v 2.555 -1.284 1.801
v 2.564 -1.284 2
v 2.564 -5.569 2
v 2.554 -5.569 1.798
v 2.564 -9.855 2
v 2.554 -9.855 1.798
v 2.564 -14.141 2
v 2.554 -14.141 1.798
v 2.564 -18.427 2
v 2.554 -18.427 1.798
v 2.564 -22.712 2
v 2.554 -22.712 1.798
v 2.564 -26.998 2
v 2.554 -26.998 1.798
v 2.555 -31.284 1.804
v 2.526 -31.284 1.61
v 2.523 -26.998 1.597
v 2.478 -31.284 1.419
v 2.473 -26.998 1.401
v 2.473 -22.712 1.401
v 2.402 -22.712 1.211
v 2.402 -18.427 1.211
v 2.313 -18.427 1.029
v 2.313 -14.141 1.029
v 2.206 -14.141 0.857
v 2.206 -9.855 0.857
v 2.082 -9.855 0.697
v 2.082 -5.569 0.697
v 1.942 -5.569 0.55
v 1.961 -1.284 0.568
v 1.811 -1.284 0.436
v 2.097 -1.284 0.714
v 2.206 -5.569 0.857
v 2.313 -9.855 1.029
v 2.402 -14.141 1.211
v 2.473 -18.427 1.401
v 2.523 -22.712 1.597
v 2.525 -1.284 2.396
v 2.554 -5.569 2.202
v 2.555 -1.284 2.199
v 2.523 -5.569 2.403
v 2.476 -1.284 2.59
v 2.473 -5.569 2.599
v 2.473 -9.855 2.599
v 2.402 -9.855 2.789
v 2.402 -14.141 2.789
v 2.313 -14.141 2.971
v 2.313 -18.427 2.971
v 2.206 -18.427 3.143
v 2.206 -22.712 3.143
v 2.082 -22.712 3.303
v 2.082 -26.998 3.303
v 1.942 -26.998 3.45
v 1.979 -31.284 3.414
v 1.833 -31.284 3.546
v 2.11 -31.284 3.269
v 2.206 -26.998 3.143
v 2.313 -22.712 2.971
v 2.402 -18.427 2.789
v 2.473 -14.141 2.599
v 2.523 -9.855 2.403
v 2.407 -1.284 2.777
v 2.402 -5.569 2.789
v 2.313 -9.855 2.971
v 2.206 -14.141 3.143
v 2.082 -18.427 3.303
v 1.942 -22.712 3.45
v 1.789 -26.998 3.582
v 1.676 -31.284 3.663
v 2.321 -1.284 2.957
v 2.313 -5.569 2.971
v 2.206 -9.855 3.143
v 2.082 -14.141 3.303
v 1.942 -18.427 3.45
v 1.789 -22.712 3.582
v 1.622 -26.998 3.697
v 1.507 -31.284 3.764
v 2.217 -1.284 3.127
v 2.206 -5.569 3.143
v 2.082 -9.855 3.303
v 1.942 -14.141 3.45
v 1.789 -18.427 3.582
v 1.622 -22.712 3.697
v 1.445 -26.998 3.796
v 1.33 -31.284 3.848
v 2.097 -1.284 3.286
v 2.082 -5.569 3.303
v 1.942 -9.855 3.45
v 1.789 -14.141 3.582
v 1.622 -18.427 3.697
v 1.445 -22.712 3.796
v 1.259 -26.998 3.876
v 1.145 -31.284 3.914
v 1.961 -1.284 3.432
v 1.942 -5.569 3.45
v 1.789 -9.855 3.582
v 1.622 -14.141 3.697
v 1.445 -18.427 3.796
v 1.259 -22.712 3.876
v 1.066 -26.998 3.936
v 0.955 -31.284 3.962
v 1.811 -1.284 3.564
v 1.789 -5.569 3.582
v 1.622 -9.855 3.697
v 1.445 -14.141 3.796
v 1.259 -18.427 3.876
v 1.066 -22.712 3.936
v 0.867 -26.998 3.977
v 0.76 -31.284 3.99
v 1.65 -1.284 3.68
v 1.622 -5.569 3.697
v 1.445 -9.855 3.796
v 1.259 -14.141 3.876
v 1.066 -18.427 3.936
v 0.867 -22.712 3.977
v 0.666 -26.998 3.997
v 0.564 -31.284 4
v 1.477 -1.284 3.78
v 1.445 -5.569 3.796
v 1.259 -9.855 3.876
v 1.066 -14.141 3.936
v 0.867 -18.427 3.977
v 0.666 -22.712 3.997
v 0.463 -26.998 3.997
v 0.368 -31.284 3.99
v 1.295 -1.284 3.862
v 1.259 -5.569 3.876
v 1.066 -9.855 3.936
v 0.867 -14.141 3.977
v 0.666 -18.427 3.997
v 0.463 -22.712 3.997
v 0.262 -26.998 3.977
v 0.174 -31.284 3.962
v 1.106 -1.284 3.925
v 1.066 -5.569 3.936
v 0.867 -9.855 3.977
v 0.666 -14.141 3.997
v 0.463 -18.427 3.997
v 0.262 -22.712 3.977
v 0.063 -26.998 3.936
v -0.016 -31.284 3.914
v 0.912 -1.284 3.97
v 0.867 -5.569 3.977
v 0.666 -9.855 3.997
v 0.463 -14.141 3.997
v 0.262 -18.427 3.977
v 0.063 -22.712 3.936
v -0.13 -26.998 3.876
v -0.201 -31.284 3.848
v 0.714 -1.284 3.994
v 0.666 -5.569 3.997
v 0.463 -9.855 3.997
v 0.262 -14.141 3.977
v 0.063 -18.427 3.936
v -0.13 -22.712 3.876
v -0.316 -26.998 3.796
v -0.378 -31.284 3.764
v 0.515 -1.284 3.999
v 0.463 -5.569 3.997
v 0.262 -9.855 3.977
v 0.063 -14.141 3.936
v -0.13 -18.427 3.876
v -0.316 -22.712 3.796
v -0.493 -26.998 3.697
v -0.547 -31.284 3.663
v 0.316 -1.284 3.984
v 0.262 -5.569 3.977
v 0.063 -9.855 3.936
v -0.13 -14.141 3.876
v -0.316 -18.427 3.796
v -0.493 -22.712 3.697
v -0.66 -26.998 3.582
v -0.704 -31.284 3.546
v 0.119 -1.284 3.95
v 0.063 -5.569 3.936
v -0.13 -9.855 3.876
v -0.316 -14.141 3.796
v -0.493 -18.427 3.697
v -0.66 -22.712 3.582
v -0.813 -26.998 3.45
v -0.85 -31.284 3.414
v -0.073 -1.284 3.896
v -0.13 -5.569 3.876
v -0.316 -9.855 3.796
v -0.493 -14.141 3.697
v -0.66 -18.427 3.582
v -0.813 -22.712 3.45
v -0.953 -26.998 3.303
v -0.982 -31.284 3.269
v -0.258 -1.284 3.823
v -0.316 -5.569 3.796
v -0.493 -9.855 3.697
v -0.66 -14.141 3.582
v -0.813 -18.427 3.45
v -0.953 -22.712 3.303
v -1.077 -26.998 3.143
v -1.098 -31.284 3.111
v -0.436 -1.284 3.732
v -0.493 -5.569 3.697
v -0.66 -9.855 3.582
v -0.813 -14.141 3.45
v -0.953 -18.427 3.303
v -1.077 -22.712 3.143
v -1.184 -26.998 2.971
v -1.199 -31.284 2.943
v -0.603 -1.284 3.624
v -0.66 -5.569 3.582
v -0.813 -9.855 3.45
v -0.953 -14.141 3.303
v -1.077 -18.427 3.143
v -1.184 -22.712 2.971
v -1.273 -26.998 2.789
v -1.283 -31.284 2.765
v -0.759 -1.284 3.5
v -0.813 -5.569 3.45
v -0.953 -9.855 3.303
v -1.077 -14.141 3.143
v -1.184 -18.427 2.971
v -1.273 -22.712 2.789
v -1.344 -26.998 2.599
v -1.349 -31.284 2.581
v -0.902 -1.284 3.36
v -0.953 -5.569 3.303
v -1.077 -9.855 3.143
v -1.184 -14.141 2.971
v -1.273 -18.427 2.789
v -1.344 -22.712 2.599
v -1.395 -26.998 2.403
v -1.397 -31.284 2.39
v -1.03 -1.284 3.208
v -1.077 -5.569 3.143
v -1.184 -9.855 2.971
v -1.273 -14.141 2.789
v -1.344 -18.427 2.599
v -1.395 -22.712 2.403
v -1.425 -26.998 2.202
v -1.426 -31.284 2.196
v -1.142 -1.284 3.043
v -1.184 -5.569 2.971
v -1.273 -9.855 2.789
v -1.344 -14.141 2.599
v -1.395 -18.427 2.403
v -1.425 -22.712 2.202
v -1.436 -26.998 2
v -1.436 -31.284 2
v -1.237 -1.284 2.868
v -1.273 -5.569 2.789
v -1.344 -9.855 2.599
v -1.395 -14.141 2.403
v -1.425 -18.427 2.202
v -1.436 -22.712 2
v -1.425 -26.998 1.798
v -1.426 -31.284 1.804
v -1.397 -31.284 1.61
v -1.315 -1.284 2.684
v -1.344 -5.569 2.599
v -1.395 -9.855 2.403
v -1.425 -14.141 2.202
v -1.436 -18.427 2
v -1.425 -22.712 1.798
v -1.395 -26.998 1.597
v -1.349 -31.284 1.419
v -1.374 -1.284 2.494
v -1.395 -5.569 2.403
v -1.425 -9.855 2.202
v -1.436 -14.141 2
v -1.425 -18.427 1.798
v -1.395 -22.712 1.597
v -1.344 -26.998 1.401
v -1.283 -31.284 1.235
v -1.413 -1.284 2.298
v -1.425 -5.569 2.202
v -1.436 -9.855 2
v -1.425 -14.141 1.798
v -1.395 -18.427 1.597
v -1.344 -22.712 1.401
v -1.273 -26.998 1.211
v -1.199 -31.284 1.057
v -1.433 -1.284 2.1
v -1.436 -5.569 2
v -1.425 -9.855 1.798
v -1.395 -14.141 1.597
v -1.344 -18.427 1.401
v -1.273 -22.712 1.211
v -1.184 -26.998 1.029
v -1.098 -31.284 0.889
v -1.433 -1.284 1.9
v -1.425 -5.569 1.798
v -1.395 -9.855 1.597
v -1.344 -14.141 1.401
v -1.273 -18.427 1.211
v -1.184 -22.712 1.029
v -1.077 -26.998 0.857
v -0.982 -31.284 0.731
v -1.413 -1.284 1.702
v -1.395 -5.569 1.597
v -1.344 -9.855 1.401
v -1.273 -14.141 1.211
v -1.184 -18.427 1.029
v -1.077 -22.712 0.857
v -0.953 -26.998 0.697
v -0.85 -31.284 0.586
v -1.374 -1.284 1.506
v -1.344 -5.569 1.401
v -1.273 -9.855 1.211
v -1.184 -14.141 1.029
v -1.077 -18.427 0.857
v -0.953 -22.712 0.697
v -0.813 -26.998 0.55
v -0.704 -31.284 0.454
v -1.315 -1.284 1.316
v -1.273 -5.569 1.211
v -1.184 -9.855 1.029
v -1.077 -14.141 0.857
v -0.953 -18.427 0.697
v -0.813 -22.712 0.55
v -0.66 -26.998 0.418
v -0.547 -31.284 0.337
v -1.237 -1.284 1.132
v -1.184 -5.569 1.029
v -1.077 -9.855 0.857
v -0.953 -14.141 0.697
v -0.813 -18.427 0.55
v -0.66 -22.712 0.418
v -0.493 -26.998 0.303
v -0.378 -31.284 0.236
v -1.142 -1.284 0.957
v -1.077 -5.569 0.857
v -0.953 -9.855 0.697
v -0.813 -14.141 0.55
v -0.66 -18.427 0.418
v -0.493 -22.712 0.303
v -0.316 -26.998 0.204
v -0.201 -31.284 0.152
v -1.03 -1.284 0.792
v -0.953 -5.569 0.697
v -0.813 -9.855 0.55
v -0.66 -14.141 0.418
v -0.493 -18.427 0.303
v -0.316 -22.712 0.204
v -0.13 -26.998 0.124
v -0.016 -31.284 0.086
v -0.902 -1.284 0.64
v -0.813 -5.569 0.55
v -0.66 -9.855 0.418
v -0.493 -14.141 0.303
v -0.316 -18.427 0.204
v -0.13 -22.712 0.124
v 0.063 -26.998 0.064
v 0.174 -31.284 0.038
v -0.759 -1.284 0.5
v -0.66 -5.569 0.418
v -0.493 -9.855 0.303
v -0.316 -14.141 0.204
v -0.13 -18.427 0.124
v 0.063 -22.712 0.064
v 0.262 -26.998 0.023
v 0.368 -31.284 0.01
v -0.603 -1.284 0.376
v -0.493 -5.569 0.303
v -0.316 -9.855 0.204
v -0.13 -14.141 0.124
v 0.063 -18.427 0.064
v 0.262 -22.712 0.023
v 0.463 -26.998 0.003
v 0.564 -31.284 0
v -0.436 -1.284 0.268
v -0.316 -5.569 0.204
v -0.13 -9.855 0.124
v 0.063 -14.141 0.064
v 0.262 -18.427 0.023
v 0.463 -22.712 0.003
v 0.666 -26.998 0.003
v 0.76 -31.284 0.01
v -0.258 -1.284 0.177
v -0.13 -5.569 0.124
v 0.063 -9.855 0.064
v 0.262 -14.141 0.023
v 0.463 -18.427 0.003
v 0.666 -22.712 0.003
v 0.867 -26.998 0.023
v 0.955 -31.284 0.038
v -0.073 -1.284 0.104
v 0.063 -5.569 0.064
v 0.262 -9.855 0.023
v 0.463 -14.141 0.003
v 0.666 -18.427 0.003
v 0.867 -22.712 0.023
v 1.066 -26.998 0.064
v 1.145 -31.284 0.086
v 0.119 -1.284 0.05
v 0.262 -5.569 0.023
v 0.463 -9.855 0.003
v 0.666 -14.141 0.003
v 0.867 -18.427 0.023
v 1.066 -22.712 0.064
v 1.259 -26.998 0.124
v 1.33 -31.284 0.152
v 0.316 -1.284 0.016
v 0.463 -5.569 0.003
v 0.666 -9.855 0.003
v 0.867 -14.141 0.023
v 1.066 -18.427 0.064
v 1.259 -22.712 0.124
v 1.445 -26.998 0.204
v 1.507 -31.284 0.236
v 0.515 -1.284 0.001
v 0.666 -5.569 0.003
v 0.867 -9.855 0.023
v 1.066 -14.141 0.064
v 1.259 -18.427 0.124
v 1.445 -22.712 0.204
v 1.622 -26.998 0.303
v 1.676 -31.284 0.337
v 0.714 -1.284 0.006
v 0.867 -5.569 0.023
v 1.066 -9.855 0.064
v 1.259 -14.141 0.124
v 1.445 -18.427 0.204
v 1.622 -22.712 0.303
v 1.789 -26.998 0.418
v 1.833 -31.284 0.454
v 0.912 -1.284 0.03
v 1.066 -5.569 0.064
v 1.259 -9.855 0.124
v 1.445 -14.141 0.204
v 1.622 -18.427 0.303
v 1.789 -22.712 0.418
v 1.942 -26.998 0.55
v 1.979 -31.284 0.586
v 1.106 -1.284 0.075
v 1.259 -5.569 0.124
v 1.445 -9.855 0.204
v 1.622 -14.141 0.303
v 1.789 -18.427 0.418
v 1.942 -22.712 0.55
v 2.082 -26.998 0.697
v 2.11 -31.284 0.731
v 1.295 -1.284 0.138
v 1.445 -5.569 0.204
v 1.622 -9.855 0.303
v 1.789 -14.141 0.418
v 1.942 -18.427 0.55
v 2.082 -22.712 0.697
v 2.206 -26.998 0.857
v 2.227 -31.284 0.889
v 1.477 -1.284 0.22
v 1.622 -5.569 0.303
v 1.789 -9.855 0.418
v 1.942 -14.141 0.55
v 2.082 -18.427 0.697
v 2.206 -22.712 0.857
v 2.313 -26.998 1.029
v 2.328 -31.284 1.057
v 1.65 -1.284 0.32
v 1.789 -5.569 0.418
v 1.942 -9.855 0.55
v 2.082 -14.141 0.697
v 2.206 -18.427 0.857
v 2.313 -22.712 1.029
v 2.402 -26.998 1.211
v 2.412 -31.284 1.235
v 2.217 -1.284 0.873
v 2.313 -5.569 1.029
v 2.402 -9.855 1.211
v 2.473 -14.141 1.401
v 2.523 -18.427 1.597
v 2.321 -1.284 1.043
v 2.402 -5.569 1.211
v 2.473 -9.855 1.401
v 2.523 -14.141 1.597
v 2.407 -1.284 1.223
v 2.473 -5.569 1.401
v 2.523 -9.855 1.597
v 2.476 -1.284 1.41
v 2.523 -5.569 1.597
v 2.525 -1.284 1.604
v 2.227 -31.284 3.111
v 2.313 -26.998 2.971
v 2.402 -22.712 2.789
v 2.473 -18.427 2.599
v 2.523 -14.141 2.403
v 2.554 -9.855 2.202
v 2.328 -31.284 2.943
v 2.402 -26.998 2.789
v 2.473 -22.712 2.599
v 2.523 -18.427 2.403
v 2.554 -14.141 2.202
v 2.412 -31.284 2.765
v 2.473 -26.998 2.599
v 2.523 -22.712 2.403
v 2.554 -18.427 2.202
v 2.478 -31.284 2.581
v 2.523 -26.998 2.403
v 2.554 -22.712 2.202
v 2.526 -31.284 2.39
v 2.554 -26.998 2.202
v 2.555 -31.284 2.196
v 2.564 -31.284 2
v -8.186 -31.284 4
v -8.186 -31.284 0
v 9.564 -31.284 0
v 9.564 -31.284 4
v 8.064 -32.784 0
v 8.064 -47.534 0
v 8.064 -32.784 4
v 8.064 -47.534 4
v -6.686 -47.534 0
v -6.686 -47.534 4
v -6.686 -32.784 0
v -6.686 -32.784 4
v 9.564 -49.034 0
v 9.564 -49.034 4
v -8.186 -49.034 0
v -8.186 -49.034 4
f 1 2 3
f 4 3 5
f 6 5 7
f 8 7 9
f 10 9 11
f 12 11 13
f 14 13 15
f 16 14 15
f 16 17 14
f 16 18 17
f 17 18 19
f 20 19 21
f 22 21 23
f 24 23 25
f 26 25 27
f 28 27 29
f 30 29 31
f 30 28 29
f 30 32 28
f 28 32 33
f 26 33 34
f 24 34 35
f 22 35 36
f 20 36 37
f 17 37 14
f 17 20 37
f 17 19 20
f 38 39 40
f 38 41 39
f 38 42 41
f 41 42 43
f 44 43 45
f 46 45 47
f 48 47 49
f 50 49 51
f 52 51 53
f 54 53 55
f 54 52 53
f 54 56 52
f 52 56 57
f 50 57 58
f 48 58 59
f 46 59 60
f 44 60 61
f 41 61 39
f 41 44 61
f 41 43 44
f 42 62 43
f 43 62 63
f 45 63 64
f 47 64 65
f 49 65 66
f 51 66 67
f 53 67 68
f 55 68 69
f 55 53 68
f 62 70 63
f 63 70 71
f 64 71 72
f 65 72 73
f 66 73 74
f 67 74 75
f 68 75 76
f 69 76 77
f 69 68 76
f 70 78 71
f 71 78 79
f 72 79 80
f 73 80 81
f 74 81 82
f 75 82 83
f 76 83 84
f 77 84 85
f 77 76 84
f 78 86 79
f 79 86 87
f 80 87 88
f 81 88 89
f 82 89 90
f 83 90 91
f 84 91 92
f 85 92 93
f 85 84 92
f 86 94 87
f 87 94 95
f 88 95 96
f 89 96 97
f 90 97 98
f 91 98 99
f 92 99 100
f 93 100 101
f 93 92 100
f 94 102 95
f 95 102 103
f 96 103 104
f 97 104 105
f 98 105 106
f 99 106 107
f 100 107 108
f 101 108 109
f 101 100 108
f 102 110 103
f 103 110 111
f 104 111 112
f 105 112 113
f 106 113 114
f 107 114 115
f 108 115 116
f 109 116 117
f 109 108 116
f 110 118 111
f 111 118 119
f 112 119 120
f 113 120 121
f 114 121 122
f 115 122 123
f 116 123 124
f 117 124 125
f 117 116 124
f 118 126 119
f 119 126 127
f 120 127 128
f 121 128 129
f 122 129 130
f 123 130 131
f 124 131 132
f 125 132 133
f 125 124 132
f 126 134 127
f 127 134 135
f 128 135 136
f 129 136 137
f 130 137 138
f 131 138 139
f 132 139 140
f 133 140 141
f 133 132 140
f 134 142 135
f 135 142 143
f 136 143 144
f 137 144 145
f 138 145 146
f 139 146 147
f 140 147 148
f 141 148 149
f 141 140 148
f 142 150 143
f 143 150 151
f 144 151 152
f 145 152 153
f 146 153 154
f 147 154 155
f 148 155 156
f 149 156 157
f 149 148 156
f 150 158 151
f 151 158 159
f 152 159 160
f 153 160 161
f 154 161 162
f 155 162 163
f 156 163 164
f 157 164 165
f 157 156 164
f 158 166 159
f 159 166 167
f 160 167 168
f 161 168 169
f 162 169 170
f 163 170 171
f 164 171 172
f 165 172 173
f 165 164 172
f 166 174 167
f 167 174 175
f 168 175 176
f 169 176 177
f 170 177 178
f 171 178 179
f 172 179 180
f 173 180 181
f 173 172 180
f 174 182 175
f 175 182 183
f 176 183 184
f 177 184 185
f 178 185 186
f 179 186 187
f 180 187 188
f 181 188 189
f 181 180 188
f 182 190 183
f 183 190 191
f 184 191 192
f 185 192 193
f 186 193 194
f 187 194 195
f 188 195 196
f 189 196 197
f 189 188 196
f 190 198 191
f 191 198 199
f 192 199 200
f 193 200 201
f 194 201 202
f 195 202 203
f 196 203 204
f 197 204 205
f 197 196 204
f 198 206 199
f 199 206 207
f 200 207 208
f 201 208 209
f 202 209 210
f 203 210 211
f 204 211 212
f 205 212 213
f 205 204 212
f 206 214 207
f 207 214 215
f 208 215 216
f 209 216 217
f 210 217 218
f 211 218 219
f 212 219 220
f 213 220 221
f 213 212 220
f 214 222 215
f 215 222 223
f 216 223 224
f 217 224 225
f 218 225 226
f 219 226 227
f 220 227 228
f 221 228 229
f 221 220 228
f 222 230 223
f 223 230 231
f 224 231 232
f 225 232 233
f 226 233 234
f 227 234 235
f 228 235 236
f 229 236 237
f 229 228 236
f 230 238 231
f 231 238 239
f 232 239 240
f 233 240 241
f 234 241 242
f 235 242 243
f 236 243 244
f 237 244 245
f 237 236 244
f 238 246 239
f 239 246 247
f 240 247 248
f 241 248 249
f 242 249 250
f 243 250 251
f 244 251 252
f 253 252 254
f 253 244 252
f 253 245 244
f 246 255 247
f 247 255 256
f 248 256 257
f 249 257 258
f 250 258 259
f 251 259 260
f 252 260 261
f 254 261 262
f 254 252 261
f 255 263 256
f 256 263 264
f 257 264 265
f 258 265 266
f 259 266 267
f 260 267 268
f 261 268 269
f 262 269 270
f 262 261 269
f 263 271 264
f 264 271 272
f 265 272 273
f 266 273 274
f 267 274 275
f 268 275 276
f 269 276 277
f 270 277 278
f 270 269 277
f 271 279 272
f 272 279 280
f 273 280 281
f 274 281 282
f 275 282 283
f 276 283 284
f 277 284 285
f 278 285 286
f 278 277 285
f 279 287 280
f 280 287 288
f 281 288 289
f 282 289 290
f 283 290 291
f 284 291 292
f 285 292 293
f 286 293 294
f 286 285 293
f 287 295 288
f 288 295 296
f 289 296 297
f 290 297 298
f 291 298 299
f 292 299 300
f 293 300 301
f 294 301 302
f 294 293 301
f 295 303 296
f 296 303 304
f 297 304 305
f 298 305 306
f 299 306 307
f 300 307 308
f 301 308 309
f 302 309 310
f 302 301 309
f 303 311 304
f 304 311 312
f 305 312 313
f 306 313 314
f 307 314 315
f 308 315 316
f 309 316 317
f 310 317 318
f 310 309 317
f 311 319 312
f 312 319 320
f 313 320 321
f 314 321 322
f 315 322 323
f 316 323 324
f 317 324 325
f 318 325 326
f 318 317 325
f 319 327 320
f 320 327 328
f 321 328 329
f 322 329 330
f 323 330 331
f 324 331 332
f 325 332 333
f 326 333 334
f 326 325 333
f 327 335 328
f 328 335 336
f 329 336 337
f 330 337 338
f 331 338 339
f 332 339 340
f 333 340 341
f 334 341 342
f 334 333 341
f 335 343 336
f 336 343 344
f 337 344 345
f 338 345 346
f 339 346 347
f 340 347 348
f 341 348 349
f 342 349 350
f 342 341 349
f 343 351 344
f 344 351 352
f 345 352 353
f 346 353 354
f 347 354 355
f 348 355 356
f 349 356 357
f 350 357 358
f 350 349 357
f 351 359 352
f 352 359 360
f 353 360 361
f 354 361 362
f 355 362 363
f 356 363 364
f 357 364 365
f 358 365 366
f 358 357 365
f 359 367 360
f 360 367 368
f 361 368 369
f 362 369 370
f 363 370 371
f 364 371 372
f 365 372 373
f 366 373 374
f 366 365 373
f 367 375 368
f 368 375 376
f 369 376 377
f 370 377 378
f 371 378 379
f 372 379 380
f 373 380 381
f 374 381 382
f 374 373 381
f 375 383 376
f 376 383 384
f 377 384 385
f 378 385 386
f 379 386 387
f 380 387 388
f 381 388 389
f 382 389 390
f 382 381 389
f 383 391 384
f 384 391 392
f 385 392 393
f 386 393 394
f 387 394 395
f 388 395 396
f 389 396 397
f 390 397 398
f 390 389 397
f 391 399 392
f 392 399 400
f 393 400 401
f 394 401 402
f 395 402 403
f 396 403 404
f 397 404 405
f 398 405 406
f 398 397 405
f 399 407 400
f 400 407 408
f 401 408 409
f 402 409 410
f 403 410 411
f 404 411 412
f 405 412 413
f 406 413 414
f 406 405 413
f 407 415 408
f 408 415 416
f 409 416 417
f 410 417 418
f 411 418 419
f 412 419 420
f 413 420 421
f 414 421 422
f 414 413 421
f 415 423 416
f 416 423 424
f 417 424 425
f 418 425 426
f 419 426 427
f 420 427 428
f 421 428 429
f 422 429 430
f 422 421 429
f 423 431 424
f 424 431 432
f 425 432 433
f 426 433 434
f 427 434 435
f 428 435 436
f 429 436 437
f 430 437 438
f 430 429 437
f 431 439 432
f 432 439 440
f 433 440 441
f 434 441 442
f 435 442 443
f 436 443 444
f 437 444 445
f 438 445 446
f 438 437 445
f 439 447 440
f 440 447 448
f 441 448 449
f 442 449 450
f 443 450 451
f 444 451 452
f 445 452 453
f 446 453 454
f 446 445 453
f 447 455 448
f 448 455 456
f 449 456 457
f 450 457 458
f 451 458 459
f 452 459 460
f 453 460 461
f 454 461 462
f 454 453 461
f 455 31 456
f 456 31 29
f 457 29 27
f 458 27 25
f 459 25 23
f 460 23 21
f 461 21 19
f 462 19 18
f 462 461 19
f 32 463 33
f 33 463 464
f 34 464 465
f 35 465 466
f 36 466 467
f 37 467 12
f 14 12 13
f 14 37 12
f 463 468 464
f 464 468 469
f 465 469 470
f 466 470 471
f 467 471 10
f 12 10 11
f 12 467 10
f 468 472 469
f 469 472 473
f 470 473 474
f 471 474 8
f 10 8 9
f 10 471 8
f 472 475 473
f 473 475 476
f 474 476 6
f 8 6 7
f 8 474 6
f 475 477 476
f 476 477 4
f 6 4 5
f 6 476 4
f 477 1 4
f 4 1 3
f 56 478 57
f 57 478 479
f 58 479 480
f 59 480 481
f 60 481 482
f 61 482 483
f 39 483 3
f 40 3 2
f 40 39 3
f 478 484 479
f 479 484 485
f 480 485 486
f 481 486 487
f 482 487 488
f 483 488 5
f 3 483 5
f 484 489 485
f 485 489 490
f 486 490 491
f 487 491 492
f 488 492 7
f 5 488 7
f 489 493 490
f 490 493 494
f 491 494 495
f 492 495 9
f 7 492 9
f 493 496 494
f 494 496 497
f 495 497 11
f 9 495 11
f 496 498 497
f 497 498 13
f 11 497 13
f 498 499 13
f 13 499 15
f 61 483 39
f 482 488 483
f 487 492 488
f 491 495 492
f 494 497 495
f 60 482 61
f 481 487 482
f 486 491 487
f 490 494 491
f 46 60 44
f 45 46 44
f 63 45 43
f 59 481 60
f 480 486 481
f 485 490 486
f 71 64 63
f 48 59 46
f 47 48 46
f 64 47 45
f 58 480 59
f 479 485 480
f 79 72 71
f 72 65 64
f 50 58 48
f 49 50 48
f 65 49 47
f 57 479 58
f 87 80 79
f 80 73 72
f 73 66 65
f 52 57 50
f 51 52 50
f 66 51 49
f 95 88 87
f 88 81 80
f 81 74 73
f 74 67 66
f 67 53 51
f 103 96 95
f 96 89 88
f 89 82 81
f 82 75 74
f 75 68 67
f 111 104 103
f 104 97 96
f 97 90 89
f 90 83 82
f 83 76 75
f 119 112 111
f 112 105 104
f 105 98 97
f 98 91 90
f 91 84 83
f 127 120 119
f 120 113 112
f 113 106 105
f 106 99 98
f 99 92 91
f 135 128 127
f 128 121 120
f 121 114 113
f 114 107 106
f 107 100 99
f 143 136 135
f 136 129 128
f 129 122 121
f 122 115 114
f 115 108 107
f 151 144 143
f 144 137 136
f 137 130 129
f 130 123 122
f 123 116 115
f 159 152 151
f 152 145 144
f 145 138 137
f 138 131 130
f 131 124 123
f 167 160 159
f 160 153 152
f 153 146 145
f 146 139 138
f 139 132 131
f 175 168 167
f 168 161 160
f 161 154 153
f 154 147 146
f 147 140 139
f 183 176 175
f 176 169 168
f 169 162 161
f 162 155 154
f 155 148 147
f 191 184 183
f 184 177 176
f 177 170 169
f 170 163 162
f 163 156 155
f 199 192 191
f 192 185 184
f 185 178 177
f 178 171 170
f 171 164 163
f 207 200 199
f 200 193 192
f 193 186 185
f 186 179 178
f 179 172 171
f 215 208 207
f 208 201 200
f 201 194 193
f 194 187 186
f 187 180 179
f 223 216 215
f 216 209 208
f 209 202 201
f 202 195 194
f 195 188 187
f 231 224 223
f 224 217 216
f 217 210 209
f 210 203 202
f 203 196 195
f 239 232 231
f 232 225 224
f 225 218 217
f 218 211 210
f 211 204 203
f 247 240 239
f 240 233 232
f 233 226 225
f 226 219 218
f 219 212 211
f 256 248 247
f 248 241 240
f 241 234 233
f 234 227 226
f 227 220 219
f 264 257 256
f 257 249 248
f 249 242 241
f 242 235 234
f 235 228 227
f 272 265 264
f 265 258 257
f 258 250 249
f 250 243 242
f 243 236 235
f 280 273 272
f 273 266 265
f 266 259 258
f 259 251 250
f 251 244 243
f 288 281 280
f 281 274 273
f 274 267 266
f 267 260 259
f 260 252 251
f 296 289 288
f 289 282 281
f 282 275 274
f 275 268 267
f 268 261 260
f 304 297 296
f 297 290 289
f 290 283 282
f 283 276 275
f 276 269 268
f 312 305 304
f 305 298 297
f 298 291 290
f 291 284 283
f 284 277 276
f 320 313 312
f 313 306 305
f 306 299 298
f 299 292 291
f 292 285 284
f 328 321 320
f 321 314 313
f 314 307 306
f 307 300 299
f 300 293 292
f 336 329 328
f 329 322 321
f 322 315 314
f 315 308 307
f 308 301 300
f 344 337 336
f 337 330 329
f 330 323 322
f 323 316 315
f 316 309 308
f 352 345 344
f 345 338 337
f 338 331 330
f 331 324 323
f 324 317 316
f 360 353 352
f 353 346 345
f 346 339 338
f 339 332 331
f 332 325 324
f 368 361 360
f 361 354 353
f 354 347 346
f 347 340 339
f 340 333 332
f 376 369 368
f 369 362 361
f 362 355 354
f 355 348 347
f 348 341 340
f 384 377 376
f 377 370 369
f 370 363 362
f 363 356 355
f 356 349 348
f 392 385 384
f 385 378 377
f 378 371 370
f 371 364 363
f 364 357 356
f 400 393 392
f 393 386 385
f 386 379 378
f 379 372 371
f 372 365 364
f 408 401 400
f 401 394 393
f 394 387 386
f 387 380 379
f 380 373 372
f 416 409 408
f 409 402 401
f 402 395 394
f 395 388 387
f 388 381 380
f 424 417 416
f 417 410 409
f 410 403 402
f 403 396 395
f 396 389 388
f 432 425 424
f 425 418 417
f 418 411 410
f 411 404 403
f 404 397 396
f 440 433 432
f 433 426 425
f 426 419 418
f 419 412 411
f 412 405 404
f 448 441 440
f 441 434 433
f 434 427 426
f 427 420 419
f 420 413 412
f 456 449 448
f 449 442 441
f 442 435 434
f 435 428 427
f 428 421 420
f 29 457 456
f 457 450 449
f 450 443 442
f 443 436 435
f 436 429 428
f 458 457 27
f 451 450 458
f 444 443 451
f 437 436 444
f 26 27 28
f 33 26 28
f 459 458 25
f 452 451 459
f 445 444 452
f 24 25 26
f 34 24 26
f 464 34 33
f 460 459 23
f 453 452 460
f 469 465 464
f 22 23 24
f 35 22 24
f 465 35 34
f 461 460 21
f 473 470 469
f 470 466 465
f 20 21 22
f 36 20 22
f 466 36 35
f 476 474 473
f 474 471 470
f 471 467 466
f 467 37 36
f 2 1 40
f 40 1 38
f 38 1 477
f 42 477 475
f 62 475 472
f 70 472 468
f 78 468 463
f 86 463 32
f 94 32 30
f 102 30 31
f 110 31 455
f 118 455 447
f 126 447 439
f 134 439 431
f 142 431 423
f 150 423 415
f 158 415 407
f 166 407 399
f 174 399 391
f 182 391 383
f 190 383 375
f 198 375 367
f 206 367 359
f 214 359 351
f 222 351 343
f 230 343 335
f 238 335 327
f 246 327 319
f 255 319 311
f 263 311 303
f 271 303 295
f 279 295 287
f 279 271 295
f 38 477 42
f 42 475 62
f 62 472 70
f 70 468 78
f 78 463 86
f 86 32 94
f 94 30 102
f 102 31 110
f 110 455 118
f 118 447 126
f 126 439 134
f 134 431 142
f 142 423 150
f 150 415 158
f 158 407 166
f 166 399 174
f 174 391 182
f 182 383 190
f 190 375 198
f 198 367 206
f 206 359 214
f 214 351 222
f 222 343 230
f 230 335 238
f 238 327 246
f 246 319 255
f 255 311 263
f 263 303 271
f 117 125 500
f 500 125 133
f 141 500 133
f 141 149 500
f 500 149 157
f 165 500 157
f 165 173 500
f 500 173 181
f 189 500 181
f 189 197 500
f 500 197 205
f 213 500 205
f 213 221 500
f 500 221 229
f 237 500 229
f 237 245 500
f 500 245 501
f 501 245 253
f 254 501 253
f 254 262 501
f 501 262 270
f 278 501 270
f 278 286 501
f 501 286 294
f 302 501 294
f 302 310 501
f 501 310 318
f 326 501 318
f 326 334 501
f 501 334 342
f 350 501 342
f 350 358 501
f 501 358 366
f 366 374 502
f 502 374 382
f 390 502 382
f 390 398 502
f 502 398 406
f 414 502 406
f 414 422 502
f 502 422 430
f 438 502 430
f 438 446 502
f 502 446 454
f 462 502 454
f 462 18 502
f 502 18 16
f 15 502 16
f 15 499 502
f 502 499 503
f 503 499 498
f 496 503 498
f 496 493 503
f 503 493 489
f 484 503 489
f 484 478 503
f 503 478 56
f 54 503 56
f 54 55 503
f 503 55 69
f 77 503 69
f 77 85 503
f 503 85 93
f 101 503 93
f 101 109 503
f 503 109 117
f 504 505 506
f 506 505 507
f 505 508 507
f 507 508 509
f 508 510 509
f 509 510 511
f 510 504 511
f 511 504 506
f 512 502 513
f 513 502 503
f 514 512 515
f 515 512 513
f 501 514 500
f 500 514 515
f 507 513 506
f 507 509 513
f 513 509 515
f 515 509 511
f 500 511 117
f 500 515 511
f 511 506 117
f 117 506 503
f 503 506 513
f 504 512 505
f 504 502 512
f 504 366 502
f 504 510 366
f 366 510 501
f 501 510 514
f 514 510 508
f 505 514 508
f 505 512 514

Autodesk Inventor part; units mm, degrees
ref_plane "YZ Plane" through (0, 0, 0) normal (1, 0, 0) x (0, 1, 0)
ref_plane "XZ Plane" through (0, 0, 0) normal (0, 1, 0) x (-1, 0, 0)
ref_plane "XY Plane" through (0, 0, 0) normal (0, 0, 1) x (1, 0, 0)
sketch "Sketch1" plane through (0, 0, 0) normal (0, 0, 1) x (1, 0, 0)
  line L0 (8.0644, -32.7837) -> (-6.6856, -32.7837)
  line L1 (-6.6856, -32.7837) -> (-6.6856, -47.5337)
  line L2 (-6.6856, -47.5337) -> (8.0644, -47.5337)
  line L3 (8.0644, -47.5337) -> (8.0644, -32.7837)
  line L4 (9.5644, -31.2837) -> (-8.1856, -31.2837)
  line L5 (-8.1856, -31.2837) -> (-8.1856, -49.0337)
  line L6 (-8.1856, -49.0337) -> (9.5644, -49.0337)
  line L7 (9.5644, -49.0337) -> (9.5644, -31.2837)
  point P0 (0, 0)
  dimension "d0" = 1.5
  dimension "d1" = 1.5
  dimension "d2" = 1.5
  dimension "d3" = 1.5
  dimension "d4" = 14.75
  dimension "d5" = 14.75
extrude "Extrusion1" add sketch "Sketch1" along normal blind 4
sketch "Sketch2" plane through (-8.1856, -31.2837, 0) normal (0, 1, 0) x (1, 0, 0)
  line L0 (17.75, 0) -> (0, 0) projected
  line L1 (0, 0) -> (0, -4) projected
  line L2 (17.75, -4) -> (0, -4) projected
  line L3 (17.75, 0) -> (17.75, -4) projected
  circle A0 centre (8.75, -2) radius 2
  point P0 (8.1856, 0)
  dimension "d8" = 4
  dimension "d9" = 9
extrude "Extrusion2" add sketch "Sketch2" along normal blind 30 contours A0
properties part number "eye_cam_holder"
